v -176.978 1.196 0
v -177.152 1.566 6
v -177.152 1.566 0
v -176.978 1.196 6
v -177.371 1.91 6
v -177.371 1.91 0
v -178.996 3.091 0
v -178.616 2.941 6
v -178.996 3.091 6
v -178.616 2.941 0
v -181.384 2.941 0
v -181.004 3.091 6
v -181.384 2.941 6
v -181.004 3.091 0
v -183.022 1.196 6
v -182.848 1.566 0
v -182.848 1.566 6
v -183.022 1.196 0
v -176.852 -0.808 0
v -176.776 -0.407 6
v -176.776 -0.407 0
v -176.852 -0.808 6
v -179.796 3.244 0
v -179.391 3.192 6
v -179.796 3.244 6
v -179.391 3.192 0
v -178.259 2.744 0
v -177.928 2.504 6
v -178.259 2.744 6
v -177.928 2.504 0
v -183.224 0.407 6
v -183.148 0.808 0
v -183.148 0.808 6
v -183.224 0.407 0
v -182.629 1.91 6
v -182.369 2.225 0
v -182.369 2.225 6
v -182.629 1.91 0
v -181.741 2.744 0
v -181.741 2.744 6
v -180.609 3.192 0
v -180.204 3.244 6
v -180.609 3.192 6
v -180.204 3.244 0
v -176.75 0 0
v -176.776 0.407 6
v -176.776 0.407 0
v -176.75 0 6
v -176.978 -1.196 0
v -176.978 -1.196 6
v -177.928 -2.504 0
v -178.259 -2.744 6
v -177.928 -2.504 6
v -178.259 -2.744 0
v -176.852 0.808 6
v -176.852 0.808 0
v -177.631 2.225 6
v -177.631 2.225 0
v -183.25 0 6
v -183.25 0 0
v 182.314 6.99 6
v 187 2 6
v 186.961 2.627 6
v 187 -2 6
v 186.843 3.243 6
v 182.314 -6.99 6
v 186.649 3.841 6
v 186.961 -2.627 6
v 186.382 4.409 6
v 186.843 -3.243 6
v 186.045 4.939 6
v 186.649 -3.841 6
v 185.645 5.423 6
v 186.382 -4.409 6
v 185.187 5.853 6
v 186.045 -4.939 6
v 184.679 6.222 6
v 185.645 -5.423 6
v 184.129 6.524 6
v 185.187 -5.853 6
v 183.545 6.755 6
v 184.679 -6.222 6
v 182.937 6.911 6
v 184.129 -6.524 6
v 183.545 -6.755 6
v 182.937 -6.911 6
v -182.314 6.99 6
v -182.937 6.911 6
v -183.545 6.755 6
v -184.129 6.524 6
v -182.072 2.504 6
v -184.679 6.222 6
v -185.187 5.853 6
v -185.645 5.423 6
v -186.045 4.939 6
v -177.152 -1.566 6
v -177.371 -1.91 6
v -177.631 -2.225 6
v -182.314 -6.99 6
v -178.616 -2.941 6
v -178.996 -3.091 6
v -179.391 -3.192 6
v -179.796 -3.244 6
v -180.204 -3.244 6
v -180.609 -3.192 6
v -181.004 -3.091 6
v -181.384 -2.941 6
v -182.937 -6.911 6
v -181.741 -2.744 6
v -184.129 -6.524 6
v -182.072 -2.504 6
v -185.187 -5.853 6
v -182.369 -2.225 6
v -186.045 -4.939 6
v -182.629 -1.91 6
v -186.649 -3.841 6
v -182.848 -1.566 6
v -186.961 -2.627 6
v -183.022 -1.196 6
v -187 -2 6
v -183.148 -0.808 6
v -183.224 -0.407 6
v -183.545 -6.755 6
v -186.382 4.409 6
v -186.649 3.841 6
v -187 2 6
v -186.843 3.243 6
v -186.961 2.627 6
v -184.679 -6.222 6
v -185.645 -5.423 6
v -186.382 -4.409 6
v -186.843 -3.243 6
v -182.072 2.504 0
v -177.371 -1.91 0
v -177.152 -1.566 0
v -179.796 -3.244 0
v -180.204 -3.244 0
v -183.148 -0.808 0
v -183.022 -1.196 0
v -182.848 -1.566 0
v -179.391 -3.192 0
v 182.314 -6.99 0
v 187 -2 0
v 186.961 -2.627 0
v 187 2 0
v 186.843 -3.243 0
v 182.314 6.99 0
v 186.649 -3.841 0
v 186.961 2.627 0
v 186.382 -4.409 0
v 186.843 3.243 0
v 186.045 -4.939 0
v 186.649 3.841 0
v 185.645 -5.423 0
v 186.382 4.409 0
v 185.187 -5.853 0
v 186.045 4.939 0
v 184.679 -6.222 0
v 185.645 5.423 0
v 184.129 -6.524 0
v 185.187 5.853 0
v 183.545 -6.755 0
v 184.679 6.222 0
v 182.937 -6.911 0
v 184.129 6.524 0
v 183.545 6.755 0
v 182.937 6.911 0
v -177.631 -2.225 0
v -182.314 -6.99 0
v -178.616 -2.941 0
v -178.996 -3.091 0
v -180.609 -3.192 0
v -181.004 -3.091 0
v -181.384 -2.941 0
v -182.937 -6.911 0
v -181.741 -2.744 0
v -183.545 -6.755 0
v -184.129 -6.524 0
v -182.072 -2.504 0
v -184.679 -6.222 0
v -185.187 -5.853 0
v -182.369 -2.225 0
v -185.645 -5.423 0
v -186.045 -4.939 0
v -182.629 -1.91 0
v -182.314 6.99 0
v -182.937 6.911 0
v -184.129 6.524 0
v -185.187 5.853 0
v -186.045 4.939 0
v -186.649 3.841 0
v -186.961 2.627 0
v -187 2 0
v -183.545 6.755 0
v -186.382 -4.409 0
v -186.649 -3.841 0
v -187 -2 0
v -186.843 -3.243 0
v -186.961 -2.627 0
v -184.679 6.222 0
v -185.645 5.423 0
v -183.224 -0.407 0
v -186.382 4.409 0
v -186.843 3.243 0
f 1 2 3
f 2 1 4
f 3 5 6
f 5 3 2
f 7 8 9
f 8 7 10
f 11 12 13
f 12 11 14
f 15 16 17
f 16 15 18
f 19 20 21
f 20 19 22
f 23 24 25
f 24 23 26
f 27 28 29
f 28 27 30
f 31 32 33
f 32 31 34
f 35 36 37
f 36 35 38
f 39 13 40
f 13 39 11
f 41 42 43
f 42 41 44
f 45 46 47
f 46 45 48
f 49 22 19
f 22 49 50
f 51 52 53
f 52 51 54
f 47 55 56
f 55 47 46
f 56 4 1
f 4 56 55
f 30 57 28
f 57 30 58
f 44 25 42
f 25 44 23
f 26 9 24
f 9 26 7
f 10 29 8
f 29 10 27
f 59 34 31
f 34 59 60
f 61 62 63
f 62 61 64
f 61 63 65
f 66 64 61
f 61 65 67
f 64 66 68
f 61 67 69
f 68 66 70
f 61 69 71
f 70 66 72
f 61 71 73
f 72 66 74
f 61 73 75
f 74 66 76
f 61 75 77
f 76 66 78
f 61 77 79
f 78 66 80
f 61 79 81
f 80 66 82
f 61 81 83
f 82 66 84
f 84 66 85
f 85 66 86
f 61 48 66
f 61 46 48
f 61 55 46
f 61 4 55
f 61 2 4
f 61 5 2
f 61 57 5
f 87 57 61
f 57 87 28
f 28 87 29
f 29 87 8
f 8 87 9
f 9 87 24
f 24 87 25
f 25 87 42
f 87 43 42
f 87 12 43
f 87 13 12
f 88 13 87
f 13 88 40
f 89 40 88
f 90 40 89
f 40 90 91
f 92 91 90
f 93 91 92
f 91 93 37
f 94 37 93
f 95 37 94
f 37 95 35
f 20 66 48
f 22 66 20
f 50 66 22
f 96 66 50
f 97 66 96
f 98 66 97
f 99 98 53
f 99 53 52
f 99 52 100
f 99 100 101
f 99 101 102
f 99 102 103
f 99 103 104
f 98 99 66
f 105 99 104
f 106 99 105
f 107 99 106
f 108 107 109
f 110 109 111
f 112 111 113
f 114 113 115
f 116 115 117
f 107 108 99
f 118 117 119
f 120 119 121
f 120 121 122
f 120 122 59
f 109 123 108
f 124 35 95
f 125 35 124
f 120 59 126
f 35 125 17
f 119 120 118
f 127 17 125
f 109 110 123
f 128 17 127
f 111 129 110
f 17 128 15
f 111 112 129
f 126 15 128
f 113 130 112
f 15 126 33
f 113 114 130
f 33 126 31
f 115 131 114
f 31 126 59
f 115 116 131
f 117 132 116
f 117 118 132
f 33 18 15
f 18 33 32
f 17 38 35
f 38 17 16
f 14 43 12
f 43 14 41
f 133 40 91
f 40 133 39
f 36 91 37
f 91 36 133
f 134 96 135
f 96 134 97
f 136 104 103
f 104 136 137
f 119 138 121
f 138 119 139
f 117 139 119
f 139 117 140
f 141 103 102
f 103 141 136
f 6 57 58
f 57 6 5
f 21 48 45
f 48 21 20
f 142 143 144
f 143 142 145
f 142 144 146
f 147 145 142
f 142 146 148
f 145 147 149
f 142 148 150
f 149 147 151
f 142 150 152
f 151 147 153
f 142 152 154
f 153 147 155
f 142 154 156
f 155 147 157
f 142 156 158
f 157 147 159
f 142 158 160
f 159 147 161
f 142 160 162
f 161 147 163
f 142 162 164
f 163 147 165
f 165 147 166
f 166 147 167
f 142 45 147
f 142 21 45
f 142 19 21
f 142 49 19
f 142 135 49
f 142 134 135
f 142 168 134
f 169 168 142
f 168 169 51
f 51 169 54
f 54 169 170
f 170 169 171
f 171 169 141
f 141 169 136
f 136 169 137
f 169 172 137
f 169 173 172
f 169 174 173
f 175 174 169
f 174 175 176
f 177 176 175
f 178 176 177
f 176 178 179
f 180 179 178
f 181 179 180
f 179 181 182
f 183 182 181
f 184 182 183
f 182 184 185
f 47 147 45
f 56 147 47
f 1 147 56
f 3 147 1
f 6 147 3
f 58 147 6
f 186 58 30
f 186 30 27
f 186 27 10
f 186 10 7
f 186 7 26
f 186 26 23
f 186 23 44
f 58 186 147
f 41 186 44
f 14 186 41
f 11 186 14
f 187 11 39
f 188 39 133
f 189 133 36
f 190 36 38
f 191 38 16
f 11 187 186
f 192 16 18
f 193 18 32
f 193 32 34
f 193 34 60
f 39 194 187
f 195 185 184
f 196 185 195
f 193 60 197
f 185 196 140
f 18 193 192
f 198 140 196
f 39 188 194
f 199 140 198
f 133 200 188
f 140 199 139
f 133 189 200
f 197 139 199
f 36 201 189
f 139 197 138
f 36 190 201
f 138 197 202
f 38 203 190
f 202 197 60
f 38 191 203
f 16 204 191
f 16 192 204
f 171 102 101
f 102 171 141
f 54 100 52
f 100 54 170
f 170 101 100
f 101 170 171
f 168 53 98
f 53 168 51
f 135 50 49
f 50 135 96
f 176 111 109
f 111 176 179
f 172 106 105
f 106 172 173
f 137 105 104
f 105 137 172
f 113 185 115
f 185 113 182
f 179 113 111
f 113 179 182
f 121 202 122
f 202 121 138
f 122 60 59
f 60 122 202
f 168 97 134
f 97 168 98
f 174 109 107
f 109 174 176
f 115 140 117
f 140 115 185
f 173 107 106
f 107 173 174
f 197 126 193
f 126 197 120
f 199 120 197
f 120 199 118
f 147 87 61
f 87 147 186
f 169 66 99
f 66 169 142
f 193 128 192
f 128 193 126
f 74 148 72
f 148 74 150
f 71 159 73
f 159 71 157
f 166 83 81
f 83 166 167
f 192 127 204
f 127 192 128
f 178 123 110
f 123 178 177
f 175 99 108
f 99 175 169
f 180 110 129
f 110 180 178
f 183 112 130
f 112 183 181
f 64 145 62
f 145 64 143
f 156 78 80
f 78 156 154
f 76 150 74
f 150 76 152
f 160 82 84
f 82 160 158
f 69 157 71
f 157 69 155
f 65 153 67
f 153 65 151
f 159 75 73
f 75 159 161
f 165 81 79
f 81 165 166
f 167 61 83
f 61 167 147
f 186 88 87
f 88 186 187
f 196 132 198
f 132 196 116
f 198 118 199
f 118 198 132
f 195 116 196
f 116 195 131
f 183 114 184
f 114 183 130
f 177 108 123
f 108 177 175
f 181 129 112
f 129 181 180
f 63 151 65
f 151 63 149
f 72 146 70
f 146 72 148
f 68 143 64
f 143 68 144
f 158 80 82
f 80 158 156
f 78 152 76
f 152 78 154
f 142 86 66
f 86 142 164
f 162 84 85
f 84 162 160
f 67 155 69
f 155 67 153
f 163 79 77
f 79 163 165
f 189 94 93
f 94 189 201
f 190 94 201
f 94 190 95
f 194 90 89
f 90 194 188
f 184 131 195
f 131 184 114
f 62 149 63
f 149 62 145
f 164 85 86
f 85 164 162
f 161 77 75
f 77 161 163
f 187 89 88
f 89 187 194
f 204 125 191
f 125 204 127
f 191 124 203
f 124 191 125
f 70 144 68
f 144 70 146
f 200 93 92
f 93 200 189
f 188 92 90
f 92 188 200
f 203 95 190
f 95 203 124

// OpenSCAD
$fn = 50;


difference() {
	union() {
		hull() {
			translate(v = [-182.0000000000, 2.0000000000, 0]) {
				cylinder(h = 6, r = 5);
			}
			translate(v = [182.0000000000, 2.0000000000, 0]) {
				cylinder(h = 6, r = 5);
			}
			translate(v = [-182.0000000000, -2.0000000000, 0]) {
				cylinder(h = 6, r = 5);
			}
			translate(v = [182.0000000000, -2.0000000000, 0]) {
				cylinder(h = 6, r = 5);
			}
		}
	}
	union() {
		translate(v = [-180.0000000000, 0.0000000000, 0]) {
			cylinder(h = 6, r = 3.2500000000);
		}
		translate(v = [-180.0000000000, 0.0000000000, 0]) {
			cylinder(h = 6, r = 1.8000000000);
		}
		translate(v = [-180.0000000000, 0.0000000000, 0]) {
			cylinder(h = 6, r = 1.8000000000);
		}
		translate(v = [-180.0000000000, 0.0000000000, 0]) {
			cylinder(h = 6, r = 1.8000000000);
		}
	}
}
